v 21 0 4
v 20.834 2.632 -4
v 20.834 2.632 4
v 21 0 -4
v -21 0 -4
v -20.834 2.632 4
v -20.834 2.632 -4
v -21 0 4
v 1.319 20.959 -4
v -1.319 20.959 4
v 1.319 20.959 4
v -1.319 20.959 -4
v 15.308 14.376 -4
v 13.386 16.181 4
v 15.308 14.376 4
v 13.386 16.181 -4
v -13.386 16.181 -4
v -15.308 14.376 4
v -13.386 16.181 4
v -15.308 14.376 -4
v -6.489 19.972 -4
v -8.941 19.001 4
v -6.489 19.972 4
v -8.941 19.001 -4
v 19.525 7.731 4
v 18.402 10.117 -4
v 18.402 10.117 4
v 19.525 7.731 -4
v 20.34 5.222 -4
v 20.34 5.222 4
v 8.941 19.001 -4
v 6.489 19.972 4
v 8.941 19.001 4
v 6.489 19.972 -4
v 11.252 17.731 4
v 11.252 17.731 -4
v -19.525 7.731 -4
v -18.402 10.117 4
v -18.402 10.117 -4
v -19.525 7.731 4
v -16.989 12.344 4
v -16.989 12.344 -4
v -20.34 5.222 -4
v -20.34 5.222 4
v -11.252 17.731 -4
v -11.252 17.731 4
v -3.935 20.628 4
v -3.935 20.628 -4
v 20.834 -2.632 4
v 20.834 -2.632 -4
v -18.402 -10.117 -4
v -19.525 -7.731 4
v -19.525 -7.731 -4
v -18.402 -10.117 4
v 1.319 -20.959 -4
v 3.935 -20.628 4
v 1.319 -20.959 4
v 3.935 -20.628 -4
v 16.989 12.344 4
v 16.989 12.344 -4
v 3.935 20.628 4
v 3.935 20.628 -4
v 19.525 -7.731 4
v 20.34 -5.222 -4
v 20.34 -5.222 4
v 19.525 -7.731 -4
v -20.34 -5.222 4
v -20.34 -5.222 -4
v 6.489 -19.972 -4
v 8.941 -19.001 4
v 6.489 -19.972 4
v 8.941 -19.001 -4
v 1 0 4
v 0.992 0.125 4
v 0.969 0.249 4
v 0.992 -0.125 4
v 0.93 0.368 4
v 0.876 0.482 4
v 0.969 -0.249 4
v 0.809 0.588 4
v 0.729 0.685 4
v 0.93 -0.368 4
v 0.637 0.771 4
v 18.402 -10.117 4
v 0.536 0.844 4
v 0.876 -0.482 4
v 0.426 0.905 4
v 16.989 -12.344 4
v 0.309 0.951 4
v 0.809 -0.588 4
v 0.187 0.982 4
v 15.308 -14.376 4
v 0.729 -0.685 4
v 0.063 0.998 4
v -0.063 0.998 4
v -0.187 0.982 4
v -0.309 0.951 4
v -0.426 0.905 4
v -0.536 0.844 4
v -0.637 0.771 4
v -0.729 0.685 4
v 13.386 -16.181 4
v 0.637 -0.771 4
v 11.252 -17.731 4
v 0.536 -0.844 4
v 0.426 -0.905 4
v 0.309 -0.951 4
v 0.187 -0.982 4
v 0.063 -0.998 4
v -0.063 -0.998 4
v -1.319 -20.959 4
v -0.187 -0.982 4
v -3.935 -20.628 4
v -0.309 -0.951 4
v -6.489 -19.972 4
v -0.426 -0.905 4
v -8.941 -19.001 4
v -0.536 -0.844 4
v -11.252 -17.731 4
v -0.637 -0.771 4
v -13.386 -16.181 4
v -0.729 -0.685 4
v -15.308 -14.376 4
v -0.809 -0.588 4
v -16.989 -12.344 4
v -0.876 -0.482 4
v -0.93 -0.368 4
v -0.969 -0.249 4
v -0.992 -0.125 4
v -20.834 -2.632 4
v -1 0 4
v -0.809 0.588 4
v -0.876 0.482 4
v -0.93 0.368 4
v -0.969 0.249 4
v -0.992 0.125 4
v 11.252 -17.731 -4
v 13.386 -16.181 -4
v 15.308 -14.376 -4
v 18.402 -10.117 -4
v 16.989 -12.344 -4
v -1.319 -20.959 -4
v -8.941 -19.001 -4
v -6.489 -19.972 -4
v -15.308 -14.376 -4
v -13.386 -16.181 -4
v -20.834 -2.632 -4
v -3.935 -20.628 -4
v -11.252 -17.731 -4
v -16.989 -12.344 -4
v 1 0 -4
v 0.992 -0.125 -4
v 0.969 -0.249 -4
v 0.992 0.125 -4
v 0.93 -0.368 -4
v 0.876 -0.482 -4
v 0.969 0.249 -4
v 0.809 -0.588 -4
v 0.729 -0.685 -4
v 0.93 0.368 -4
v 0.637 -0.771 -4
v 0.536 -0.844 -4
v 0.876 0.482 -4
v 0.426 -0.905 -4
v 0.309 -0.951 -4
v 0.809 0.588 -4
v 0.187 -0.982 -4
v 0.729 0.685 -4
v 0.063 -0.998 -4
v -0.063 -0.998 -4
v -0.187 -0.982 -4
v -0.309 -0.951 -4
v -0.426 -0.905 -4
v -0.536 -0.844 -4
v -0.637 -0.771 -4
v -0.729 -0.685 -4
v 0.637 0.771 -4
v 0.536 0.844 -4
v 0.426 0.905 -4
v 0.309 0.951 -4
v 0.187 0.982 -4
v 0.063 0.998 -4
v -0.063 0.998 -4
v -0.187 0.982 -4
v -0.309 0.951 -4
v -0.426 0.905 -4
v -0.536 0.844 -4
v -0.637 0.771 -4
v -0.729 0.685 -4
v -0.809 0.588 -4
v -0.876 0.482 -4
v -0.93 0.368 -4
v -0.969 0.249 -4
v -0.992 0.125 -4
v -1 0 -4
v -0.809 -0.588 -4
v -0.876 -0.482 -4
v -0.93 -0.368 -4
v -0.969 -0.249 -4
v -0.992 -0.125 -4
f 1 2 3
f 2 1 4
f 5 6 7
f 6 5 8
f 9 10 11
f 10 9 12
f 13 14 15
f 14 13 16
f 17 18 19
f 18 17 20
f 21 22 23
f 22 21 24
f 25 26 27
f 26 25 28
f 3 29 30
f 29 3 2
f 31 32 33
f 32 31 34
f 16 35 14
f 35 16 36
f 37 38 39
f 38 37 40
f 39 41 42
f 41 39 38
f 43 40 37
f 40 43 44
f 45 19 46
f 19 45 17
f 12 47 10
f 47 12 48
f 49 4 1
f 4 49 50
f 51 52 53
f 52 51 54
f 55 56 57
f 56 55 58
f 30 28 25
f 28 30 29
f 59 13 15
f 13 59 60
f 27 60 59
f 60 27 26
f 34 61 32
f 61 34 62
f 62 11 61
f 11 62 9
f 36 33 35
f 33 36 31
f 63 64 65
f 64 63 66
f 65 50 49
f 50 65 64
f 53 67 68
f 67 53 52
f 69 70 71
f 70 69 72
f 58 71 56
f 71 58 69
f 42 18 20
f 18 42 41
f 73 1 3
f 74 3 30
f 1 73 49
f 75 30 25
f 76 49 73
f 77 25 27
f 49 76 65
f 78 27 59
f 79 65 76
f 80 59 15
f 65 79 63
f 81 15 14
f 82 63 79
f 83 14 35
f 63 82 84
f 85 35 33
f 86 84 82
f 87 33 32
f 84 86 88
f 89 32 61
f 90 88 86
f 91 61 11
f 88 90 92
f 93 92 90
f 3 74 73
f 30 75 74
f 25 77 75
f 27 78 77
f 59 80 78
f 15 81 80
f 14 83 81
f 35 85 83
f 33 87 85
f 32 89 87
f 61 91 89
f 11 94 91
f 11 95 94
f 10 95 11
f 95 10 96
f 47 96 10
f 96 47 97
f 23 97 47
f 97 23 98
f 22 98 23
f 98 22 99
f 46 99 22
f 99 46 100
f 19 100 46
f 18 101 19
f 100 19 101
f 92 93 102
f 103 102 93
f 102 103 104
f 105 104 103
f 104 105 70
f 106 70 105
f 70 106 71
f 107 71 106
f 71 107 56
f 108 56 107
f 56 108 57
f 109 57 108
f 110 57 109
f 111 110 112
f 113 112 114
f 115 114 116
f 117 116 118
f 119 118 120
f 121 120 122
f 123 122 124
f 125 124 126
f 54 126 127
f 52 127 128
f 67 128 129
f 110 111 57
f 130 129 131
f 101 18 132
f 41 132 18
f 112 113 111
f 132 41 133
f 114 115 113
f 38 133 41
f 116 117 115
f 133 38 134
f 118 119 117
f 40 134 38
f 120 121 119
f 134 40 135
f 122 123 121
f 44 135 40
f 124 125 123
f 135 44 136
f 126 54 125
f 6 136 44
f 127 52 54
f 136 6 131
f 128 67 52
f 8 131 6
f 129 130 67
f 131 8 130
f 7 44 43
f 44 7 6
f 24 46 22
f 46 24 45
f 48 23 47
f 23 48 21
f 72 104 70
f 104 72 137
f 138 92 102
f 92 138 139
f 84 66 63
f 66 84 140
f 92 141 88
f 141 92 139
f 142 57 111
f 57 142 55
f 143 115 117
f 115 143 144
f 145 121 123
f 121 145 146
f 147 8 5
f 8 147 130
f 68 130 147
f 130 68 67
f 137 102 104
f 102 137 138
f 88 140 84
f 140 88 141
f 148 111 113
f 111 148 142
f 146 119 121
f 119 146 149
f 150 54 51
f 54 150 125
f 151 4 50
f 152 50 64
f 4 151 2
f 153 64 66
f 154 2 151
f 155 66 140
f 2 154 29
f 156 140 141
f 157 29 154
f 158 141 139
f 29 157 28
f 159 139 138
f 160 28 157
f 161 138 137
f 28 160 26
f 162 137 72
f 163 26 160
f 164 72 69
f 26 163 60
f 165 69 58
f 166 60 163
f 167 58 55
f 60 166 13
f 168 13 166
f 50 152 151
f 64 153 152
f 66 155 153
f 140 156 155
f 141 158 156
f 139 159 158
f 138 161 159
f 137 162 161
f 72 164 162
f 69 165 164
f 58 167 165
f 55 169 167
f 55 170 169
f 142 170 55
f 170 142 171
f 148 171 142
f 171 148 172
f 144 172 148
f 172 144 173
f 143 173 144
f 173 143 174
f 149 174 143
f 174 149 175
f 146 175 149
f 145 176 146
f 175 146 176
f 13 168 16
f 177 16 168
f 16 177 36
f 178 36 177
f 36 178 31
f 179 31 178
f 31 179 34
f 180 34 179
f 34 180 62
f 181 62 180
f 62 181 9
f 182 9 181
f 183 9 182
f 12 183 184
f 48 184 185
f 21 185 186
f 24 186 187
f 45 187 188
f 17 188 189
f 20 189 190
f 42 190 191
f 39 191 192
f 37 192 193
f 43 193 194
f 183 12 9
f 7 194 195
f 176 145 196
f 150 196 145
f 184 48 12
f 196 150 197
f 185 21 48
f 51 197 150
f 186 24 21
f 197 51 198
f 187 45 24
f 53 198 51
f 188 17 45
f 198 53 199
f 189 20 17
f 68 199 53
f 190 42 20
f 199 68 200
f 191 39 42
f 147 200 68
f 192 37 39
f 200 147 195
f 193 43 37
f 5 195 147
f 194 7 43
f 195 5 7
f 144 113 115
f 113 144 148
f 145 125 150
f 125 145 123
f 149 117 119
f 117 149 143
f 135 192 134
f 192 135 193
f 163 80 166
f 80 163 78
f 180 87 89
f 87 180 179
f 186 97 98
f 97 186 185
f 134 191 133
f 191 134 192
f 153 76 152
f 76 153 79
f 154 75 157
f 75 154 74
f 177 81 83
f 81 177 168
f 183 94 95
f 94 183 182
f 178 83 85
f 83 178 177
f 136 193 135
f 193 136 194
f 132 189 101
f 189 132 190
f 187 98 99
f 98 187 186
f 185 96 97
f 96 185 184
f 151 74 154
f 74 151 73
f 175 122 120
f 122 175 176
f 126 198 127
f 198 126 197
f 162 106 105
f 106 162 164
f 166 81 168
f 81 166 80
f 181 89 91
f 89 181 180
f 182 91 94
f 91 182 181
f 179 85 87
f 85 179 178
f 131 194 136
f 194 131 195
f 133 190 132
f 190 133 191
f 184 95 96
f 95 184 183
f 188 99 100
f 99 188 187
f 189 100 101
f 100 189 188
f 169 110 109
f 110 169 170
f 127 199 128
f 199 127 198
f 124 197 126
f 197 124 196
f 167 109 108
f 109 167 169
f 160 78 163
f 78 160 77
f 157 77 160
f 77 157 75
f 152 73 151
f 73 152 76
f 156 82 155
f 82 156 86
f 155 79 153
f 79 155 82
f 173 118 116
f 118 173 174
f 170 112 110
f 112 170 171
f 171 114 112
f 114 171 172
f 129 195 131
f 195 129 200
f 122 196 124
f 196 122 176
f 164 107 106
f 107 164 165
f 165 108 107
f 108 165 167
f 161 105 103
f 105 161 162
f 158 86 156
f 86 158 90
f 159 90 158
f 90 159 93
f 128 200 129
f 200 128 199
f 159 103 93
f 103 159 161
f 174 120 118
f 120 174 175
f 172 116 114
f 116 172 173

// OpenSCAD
$fn = 50;


difference() {
	union() {
		translate(v = [0, 0, -4.0000000000]) {
			cylinder(h = 8, r = 21.0000000000);
		}
	}
	union() {
		translate(v = [0, 0, -100.0000000000]) {
			cylinder(h = 200, r = 1.0000000000);
		}
	}
}
